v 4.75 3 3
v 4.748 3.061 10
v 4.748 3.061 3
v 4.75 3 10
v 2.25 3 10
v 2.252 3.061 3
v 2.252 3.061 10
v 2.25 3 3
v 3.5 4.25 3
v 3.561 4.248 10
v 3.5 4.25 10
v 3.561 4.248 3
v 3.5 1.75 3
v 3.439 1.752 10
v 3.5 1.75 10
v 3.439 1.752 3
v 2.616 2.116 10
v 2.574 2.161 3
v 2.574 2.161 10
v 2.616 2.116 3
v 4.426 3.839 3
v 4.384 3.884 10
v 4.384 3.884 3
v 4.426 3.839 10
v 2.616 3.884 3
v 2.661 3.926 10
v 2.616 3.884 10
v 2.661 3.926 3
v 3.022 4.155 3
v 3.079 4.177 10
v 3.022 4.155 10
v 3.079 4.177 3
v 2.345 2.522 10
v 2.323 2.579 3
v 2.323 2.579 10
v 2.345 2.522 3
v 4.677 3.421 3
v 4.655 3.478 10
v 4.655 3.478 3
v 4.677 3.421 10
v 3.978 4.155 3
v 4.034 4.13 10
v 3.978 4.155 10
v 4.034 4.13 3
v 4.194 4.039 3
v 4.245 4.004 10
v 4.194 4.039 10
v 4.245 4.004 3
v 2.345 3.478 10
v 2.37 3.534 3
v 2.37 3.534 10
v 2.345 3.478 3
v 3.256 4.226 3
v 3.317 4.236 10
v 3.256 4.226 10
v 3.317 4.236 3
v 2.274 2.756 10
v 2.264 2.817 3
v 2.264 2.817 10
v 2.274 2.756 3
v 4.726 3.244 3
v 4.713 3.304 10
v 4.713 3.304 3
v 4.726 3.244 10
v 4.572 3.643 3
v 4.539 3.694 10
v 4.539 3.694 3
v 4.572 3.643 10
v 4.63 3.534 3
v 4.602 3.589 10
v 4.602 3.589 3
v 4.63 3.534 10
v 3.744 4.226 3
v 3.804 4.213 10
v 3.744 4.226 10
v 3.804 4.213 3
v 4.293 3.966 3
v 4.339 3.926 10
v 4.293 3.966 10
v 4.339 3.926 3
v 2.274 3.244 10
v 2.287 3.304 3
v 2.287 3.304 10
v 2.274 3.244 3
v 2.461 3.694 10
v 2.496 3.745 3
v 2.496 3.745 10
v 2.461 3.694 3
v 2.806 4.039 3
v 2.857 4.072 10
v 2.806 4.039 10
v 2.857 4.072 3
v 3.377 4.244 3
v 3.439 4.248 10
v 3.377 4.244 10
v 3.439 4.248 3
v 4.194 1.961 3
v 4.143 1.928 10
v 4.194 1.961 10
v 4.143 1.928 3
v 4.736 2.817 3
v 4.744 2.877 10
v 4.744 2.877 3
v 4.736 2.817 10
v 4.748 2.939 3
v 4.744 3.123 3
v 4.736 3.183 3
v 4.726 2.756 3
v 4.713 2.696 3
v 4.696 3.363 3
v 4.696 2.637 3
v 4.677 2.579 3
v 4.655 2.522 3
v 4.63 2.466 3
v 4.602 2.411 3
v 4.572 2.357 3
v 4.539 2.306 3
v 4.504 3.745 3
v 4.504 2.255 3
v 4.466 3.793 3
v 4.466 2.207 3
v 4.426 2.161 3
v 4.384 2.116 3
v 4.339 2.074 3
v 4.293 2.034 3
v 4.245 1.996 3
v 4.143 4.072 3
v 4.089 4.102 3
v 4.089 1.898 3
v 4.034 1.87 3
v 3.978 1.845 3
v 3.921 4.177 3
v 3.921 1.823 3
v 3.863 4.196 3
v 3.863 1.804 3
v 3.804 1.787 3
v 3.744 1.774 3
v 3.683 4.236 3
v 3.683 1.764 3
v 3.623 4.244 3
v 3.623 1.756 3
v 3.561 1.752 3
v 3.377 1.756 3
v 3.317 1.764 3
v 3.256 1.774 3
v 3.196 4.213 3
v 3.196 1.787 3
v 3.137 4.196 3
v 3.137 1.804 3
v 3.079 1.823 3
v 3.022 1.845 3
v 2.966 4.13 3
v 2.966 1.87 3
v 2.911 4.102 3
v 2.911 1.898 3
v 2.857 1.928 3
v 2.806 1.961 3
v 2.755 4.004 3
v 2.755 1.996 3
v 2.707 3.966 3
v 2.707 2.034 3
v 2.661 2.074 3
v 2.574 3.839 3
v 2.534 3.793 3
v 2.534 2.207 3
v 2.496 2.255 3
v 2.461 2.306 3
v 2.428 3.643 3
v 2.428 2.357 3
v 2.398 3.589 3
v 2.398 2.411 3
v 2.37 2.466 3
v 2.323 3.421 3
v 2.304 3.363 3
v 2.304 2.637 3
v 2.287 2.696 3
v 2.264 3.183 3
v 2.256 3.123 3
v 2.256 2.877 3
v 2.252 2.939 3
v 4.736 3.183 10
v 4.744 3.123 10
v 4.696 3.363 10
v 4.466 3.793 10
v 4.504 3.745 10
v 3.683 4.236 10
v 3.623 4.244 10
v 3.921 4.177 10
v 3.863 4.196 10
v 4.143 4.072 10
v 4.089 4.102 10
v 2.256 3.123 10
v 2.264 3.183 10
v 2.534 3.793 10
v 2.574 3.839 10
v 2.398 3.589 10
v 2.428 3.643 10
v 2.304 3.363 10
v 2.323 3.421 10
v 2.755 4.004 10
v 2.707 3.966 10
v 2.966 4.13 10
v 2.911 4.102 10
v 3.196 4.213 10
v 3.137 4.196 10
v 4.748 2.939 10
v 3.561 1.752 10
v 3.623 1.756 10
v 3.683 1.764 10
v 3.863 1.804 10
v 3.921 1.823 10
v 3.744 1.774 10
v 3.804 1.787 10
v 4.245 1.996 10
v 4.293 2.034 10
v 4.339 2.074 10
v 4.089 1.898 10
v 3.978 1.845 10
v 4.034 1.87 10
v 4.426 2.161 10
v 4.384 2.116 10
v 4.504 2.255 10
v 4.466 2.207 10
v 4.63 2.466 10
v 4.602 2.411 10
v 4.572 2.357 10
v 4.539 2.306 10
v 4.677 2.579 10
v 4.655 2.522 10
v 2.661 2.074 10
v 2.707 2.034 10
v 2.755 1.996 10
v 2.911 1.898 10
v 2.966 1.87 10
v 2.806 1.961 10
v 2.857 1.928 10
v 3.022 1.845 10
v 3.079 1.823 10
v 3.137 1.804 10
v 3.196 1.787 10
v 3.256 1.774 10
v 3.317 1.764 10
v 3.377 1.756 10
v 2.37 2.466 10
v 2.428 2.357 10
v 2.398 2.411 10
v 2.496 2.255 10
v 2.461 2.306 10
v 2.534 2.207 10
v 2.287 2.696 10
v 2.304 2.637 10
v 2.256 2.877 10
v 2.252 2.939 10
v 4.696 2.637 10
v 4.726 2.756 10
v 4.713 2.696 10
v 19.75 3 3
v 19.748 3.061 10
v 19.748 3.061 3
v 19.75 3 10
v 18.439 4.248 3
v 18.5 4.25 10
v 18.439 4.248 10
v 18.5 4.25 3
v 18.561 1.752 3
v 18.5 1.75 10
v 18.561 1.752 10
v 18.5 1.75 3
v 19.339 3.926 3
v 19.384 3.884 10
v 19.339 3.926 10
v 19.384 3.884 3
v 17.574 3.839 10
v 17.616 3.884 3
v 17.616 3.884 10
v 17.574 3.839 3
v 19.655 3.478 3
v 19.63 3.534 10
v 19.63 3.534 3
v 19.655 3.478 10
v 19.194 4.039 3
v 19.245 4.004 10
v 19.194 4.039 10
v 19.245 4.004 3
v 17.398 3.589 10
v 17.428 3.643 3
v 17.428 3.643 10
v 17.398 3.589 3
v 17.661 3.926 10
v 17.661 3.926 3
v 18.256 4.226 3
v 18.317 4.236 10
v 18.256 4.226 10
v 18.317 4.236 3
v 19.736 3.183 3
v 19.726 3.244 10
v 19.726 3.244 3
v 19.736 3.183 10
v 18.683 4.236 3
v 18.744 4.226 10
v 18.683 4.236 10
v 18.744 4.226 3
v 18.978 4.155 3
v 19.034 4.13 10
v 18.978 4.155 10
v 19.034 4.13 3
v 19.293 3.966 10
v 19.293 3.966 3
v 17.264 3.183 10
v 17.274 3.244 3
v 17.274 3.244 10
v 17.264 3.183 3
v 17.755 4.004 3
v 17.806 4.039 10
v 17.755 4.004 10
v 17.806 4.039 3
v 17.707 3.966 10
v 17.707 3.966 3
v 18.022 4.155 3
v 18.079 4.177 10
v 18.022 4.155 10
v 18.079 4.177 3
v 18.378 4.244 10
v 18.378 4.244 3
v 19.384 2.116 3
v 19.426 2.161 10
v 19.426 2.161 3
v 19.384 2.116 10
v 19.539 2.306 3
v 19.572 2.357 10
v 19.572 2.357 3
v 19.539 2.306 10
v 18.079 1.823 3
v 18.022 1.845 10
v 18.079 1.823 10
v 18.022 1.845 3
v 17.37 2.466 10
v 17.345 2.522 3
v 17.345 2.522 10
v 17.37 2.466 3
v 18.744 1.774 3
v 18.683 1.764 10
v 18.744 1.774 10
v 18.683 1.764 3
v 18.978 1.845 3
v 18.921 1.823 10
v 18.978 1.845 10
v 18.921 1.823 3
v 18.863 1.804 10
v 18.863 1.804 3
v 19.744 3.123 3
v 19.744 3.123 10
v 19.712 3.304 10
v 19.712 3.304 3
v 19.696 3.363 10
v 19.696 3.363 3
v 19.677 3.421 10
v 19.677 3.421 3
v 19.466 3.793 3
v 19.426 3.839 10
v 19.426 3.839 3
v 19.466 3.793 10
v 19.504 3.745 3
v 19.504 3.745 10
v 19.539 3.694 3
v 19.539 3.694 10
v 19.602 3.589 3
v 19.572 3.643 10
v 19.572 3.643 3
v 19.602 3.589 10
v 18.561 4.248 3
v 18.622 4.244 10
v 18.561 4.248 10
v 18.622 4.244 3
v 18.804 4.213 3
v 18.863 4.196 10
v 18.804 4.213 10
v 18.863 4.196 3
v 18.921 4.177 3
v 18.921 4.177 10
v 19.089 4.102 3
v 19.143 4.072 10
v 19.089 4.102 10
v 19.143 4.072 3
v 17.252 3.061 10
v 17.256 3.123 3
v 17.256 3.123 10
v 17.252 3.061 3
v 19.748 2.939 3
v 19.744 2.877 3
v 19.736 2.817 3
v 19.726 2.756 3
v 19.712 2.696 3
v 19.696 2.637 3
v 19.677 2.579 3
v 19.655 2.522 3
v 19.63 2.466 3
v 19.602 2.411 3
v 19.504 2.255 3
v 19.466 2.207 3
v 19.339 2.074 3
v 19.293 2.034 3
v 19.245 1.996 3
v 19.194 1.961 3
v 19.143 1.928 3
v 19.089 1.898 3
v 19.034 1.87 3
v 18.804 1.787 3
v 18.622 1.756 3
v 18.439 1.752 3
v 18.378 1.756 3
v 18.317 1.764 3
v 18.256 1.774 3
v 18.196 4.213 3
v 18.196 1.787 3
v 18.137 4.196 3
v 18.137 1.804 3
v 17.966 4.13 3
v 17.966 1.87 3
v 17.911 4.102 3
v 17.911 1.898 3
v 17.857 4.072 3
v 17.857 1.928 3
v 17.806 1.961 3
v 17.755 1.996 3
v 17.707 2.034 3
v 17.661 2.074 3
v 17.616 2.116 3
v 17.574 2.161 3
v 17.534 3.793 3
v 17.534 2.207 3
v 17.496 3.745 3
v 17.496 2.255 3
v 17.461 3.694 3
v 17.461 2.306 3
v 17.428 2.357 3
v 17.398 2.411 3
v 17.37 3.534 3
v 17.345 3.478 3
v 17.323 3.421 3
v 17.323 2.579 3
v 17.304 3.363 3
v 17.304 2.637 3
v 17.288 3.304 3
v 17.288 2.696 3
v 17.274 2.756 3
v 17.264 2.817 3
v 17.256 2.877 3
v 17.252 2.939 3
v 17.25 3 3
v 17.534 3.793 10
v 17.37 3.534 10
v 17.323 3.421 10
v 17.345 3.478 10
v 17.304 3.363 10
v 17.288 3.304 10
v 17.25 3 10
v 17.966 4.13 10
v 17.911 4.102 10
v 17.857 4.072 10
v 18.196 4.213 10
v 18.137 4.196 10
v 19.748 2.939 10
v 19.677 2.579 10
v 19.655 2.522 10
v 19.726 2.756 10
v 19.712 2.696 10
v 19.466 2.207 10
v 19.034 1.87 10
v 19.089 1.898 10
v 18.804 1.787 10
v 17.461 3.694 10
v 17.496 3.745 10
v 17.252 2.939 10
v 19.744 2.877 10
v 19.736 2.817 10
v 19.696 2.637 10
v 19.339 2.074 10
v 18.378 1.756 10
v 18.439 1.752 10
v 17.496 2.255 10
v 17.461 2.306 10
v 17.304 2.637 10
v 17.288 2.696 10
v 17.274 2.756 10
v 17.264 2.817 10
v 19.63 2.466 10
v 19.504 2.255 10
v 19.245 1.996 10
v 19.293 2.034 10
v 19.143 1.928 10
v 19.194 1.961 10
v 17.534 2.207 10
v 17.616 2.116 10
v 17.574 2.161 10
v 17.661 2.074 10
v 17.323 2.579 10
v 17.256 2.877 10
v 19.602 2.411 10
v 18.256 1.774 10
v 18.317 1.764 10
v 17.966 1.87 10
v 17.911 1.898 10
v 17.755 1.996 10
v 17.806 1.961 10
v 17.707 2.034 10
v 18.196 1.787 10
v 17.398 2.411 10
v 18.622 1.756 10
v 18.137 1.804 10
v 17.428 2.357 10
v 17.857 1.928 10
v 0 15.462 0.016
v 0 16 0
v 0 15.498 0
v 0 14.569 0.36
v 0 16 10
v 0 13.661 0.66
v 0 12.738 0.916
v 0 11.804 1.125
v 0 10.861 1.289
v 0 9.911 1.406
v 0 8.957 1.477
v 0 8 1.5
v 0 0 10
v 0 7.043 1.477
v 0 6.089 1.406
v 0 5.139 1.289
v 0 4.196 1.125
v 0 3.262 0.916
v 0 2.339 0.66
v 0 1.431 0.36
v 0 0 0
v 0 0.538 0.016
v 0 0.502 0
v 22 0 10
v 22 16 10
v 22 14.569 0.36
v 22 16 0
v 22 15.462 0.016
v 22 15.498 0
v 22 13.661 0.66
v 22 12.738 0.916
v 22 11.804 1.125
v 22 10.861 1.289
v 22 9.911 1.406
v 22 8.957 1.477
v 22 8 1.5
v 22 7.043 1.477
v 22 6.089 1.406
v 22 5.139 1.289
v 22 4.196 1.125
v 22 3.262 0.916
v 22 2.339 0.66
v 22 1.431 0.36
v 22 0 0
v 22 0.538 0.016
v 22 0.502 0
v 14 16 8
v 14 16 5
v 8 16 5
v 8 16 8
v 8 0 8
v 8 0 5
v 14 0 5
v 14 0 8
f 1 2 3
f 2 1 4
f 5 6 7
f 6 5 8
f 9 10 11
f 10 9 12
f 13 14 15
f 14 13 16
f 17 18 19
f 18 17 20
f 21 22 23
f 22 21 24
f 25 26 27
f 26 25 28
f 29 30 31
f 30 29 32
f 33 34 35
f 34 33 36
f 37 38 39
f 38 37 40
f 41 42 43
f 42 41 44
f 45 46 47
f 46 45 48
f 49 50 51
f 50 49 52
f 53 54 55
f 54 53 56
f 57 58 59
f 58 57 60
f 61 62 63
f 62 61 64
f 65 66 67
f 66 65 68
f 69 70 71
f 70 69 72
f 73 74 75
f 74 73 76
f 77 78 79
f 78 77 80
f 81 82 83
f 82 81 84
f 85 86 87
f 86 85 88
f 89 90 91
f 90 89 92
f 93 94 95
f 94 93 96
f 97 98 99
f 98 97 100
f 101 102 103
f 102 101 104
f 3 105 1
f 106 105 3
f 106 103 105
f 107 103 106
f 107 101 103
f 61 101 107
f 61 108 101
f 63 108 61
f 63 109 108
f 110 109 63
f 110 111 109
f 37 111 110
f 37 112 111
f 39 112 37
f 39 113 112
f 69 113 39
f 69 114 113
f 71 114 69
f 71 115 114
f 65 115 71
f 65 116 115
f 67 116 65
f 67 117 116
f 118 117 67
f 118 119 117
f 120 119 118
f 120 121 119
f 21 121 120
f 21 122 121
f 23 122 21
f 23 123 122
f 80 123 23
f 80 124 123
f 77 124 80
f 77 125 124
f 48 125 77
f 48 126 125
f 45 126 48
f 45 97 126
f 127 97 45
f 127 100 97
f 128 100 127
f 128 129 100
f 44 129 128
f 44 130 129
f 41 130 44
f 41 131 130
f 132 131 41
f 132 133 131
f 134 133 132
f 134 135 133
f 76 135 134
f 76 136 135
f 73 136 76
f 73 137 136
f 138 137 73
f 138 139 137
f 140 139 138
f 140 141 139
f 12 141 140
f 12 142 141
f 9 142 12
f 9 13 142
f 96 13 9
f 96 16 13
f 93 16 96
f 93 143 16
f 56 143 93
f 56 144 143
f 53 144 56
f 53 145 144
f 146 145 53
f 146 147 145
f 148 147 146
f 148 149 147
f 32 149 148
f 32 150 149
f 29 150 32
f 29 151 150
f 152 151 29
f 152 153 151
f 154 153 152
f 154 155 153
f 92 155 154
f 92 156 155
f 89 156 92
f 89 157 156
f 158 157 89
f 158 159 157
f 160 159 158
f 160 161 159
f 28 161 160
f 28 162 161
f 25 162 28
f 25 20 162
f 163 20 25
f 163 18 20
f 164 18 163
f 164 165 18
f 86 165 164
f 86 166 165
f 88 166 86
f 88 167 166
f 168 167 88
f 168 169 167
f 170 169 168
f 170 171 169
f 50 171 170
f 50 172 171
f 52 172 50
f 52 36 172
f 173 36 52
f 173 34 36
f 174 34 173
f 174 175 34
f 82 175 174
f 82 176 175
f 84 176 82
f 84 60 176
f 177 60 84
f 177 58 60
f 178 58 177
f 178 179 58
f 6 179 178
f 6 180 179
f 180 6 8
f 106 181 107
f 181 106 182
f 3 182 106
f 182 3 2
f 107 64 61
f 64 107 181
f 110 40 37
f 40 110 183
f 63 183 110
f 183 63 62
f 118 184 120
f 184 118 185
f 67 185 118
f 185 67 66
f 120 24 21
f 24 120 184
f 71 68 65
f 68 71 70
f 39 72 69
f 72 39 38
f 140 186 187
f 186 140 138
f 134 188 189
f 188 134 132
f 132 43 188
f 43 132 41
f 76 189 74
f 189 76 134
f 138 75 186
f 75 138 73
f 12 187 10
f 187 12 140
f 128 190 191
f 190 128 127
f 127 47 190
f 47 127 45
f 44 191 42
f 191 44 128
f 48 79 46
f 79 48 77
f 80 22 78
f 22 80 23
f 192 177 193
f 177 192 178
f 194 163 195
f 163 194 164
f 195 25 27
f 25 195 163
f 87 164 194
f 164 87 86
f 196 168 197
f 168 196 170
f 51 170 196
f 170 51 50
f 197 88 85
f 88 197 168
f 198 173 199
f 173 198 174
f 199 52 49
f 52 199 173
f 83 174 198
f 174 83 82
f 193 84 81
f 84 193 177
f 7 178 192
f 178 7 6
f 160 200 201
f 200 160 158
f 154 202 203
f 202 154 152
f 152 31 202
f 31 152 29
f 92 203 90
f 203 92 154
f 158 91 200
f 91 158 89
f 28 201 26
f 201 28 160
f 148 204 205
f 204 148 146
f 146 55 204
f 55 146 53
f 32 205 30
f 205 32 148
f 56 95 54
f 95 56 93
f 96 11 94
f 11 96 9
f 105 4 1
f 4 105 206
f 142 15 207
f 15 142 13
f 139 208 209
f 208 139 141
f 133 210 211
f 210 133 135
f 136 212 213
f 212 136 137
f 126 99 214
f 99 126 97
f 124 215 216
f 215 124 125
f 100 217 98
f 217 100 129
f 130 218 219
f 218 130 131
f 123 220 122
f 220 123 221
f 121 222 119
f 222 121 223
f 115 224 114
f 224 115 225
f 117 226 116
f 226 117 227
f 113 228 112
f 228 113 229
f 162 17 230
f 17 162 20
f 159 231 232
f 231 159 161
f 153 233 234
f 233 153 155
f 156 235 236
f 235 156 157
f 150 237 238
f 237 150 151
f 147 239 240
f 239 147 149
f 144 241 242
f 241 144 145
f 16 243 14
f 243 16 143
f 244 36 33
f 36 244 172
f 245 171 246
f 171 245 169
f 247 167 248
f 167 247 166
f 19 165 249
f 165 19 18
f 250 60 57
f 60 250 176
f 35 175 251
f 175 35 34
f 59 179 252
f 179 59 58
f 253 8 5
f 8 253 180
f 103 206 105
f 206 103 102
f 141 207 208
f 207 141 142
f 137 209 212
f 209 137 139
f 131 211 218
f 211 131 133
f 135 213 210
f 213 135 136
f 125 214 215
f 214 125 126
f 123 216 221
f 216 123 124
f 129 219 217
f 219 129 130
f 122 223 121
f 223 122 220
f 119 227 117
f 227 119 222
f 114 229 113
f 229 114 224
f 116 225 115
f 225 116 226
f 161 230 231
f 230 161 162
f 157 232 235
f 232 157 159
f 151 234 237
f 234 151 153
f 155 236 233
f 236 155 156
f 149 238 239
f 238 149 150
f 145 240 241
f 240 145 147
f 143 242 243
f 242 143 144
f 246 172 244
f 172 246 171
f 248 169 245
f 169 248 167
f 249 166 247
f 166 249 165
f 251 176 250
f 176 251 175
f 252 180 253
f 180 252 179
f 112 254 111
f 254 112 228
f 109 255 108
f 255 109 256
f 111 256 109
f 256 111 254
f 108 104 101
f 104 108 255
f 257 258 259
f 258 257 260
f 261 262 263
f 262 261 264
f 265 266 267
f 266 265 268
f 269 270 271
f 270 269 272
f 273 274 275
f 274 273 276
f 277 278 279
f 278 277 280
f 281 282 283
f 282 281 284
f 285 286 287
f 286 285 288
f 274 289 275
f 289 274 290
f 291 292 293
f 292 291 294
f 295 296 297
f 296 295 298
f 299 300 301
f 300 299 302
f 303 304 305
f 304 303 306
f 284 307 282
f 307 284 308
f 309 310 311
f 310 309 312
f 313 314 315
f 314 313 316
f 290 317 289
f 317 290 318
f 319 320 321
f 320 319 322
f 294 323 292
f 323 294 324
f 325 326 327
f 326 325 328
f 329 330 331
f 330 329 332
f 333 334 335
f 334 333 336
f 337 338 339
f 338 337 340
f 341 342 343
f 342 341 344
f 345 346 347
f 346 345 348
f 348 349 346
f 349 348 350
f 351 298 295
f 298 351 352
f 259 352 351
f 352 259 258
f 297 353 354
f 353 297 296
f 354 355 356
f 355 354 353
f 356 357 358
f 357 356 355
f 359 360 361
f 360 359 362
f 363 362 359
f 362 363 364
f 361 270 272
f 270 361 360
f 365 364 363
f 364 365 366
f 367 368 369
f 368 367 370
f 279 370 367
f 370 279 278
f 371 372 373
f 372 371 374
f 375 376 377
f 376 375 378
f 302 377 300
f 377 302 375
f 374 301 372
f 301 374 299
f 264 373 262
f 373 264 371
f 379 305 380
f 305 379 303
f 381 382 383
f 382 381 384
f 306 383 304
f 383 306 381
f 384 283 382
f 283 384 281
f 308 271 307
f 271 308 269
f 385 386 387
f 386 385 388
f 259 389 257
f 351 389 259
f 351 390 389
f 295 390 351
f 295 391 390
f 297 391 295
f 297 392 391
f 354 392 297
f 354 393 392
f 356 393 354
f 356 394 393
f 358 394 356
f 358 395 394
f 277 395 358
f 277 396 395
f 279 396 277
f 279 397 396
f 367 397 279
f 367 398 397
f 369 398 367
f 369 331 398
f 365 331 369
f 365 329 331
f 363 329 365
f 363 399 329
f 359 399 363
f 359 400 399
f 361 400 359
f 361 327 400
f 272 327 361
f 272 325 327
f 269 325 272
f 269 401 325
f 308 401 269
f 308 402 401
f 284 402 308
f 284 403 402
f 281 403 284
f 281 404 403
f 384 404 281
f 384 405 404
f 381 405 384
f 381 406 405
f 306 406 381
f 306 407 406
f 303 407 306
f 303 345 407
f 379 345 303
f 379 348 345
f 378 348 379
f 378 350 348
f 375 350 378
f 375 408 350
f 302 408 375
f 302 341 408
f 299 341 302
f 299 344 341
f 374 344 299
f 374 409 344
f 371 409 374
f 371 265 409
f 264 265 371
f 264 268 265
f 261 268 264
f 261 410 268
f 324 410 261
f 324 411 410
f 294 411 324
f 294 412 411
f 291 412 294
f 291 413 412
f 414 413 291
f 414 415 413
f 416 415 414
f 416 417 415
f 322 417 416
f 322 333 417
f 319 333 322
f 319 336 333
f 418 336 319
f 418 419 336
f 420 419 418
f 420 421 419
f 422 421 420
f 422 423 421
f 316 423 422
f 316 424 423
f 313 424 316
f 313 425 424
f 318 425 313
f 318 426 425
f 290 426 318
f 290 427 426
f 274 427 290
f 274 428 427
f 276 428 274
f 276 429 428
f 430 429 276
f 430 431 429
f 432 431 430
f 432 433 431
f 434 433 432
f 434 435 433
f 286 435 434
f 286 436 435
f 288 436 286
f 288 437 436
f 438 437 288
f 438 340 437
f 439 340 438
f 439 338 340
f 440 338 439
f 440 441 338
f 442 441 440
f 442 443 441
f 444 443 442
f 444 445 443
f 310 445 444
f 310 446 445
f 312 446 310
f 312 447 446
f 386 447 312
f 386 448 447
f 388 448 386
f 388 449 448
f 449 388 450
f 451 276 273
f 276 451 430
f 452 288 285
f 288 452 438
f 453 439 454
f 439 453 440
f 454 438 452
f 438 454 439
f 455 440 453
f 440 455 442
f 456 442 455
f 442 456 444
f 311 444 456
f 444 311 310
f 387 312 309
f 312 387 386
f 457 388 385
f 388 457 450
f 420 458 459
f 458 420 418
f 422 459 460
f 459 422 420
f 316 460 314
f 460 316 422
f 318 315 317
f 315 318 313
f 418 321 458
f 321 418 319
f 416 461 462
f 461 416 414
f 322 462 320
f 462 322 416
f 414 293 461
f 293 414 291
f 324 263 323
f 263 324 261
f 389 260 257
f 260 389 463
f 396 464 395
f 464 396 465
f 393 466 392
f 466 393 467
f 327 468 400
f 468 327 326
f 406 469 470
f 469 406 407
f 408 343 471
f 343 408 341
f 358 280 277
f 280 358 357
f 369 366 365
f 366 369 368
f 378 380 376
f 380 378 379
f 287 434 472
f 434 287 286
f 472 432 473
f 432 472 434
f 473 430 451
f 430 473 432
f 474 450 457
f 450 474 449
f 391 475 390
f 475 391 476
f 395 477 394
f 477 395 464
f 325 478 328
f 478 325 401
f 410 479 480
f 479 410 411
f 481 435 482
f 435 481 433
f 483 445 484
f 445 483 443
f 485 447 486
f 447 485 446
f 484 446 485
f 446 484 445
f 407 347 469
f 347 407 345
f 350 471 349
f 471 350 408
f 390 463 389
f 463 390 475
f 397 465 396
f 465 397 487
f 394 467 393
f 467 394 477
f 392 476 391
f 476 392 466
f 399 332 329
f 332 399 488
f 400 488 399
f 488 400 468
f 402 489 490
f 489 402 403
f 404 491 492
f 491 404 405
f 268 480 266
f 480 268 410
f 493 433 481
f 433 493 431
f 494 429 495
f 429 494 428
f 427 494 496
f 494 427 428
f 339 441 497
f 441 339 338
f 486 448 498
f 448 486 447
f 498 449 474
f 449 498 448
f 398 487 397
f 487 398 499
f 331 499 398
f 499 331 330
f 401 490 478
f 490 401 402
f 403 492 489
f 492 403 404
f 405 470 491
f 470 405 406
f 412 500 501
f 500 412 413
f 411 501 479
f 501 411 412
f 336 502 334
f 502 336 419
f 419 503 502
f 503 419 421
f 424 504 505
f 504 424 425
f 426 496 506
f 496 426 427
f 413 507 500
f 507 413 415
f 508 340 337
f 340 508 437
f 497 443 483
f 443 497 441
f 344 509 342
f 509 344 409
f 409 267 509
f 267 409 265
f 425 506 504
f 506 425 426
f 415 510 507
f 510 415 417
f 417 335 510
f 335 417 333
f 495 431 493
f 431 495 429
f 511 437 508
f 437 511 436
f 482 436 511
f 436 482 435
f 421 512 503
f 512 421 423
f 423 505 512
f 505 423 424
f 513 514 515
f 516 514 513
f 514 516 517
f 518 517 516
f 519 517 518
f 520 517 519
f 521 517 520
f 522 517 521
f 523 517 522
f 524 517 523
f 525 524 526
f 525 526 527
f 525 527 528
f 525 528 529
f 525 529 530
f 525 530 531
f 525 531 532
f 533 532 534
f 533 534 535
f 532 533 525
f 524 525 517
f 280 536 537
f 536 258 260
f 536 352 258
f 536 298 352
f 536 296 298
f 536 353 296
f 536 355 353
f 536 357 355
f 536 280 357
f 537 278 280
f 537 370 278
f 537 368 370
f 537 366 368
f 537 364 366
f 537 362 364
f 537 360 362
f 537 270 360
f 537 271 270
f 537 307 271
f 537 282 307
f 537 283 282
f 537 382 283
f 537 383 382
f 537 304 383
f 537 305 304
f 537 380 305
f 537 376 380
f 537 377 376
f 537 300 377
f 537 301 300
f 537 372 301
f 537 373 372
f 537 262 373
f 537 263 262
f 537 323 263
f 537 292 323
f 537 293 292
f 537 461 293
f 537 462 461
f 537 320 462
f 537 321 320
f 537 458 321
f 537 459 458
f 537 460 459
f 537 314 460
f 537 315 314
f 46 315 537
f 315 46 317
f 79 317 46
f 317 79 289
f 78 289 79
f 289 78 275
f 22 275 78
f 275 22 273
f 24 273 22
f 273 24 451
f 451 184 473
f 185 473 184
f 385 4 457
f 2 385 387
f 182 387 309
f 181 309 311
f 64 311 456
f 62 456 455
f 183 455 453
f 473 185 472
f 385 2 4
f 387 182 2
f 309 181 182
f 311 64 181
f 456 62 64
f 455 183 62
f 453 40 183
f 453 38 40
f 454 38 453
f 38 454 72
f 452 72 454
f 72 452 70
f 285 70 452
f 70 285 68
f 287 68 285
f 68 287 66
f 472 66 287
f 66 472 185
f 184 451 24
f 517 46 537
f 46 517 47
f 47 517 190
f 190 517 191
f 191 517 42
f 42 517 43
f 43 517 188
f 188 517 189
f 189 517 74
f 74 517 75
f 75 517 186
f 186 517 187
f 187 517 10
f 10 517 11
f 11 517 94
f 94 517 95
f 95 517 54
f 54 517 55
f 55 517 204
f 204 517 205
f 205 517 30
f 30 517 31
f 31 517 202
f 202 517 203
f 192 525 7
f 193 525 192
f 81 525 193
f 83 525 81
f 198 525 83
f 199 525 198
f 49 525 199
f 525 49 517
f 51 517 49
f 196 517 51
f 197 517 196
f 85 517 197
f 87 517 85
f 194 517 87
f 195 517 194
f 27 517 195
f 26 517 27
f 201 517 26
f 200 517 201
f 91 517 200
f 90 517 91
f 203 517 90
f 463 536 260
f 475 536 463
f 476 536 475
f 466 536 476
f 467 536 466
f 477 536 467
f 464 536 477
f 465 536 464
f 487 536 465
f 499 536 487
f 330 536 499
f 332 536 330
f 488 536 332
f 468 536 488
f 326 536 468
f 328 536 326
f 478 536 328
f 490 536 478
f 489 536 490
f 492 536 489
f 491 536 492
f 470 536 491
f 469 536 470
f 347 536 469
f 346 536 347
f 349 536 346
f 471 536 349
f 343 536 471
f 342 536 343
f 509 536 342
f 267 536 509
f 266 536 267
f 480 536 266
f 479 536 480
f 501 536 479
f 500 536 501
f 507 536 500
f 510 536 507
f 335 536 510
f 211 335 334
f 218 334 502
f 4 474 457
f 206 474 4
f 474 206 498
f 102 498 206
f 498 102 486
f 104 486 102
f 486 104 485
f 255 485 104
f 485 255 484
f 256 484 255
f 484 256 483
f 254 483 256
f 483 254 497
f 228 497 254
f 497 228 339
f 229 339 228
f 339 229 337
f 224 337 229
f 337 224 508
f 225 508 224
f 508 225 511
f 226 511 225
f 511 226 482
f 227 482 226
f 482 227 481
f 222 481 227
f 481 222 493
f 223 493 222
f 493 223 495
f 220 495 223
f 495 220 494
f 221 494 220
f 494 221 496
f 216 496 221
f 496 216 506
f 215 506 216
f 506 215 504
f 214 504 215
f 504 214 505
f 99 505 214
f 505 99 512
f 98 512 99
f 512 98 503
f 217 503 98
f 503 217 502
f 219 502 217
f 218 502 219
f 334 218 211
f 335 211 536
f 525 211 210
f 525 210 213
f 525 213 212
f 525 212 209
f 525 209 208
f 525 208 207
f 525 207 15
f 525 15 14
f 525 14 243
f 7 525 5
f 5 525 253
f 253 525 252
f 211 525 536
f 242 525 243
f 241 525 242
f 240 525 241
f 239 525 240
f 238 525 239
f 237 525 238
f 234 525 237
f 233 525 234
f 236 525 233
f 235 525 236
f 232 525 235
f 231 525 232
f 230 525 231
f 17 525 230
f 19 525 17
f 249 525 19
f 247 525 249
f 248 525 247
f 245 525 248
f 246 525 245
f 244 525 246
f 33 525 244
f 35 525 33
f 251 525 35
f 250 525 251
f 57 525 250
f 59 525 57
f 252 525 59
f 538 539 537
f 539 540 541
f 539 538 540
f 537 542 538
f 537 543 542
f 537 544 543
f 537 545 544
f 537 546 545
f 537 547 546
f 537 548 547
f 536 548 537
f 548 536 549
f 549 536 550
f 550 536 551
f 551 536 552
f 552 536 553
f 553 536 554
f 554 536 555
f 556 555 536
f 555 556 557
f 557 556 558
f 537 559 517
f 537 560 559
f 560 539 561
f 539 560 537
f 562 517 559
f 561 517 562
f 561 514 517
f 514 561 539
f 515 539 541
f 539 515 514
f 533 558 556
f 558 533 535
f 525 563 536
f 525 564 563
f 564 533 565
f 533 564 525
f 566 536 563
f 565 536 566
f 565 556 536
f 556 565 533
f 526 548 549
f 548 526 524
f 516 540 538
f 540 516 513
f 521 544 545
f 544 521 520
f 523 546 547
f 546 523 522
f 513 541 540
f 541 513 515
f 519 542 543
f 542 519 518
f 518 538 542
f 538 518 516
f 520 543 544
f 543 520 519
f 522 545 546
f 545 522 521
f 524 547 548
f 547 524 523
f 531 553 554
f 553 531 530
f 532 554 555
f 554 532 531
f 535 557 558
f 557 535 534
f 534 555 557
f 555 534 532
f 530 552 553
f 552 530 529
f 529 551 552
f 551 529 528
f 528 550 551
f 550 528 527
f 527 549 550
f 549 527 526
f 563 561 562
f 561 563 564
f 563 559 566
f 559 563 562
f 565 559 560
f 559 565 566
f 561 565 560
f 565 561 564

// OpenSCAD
$fn = 128;

module base(){
    cube([22,16,10]);
}

module cylinder_cut(){
    translate([-1,8,-18])
    rotate([0,90,0])
    cylinder(h=24,d=39);
}

module hellerman_cut(){
    translate([8,-2,5])
    cube([6,20,3]);
}

module holes(){

    translate([3.5,3,-7])
    union(){
        translate([0,0,10])
        cylinder(h=8,d=2.5);

        translate([15,0,10])
        cylinder(h=8,d=2.5);
    }
}

difference(){

    base();

    cylinder_cut();
    hellerman_cut();
    holes();
}
